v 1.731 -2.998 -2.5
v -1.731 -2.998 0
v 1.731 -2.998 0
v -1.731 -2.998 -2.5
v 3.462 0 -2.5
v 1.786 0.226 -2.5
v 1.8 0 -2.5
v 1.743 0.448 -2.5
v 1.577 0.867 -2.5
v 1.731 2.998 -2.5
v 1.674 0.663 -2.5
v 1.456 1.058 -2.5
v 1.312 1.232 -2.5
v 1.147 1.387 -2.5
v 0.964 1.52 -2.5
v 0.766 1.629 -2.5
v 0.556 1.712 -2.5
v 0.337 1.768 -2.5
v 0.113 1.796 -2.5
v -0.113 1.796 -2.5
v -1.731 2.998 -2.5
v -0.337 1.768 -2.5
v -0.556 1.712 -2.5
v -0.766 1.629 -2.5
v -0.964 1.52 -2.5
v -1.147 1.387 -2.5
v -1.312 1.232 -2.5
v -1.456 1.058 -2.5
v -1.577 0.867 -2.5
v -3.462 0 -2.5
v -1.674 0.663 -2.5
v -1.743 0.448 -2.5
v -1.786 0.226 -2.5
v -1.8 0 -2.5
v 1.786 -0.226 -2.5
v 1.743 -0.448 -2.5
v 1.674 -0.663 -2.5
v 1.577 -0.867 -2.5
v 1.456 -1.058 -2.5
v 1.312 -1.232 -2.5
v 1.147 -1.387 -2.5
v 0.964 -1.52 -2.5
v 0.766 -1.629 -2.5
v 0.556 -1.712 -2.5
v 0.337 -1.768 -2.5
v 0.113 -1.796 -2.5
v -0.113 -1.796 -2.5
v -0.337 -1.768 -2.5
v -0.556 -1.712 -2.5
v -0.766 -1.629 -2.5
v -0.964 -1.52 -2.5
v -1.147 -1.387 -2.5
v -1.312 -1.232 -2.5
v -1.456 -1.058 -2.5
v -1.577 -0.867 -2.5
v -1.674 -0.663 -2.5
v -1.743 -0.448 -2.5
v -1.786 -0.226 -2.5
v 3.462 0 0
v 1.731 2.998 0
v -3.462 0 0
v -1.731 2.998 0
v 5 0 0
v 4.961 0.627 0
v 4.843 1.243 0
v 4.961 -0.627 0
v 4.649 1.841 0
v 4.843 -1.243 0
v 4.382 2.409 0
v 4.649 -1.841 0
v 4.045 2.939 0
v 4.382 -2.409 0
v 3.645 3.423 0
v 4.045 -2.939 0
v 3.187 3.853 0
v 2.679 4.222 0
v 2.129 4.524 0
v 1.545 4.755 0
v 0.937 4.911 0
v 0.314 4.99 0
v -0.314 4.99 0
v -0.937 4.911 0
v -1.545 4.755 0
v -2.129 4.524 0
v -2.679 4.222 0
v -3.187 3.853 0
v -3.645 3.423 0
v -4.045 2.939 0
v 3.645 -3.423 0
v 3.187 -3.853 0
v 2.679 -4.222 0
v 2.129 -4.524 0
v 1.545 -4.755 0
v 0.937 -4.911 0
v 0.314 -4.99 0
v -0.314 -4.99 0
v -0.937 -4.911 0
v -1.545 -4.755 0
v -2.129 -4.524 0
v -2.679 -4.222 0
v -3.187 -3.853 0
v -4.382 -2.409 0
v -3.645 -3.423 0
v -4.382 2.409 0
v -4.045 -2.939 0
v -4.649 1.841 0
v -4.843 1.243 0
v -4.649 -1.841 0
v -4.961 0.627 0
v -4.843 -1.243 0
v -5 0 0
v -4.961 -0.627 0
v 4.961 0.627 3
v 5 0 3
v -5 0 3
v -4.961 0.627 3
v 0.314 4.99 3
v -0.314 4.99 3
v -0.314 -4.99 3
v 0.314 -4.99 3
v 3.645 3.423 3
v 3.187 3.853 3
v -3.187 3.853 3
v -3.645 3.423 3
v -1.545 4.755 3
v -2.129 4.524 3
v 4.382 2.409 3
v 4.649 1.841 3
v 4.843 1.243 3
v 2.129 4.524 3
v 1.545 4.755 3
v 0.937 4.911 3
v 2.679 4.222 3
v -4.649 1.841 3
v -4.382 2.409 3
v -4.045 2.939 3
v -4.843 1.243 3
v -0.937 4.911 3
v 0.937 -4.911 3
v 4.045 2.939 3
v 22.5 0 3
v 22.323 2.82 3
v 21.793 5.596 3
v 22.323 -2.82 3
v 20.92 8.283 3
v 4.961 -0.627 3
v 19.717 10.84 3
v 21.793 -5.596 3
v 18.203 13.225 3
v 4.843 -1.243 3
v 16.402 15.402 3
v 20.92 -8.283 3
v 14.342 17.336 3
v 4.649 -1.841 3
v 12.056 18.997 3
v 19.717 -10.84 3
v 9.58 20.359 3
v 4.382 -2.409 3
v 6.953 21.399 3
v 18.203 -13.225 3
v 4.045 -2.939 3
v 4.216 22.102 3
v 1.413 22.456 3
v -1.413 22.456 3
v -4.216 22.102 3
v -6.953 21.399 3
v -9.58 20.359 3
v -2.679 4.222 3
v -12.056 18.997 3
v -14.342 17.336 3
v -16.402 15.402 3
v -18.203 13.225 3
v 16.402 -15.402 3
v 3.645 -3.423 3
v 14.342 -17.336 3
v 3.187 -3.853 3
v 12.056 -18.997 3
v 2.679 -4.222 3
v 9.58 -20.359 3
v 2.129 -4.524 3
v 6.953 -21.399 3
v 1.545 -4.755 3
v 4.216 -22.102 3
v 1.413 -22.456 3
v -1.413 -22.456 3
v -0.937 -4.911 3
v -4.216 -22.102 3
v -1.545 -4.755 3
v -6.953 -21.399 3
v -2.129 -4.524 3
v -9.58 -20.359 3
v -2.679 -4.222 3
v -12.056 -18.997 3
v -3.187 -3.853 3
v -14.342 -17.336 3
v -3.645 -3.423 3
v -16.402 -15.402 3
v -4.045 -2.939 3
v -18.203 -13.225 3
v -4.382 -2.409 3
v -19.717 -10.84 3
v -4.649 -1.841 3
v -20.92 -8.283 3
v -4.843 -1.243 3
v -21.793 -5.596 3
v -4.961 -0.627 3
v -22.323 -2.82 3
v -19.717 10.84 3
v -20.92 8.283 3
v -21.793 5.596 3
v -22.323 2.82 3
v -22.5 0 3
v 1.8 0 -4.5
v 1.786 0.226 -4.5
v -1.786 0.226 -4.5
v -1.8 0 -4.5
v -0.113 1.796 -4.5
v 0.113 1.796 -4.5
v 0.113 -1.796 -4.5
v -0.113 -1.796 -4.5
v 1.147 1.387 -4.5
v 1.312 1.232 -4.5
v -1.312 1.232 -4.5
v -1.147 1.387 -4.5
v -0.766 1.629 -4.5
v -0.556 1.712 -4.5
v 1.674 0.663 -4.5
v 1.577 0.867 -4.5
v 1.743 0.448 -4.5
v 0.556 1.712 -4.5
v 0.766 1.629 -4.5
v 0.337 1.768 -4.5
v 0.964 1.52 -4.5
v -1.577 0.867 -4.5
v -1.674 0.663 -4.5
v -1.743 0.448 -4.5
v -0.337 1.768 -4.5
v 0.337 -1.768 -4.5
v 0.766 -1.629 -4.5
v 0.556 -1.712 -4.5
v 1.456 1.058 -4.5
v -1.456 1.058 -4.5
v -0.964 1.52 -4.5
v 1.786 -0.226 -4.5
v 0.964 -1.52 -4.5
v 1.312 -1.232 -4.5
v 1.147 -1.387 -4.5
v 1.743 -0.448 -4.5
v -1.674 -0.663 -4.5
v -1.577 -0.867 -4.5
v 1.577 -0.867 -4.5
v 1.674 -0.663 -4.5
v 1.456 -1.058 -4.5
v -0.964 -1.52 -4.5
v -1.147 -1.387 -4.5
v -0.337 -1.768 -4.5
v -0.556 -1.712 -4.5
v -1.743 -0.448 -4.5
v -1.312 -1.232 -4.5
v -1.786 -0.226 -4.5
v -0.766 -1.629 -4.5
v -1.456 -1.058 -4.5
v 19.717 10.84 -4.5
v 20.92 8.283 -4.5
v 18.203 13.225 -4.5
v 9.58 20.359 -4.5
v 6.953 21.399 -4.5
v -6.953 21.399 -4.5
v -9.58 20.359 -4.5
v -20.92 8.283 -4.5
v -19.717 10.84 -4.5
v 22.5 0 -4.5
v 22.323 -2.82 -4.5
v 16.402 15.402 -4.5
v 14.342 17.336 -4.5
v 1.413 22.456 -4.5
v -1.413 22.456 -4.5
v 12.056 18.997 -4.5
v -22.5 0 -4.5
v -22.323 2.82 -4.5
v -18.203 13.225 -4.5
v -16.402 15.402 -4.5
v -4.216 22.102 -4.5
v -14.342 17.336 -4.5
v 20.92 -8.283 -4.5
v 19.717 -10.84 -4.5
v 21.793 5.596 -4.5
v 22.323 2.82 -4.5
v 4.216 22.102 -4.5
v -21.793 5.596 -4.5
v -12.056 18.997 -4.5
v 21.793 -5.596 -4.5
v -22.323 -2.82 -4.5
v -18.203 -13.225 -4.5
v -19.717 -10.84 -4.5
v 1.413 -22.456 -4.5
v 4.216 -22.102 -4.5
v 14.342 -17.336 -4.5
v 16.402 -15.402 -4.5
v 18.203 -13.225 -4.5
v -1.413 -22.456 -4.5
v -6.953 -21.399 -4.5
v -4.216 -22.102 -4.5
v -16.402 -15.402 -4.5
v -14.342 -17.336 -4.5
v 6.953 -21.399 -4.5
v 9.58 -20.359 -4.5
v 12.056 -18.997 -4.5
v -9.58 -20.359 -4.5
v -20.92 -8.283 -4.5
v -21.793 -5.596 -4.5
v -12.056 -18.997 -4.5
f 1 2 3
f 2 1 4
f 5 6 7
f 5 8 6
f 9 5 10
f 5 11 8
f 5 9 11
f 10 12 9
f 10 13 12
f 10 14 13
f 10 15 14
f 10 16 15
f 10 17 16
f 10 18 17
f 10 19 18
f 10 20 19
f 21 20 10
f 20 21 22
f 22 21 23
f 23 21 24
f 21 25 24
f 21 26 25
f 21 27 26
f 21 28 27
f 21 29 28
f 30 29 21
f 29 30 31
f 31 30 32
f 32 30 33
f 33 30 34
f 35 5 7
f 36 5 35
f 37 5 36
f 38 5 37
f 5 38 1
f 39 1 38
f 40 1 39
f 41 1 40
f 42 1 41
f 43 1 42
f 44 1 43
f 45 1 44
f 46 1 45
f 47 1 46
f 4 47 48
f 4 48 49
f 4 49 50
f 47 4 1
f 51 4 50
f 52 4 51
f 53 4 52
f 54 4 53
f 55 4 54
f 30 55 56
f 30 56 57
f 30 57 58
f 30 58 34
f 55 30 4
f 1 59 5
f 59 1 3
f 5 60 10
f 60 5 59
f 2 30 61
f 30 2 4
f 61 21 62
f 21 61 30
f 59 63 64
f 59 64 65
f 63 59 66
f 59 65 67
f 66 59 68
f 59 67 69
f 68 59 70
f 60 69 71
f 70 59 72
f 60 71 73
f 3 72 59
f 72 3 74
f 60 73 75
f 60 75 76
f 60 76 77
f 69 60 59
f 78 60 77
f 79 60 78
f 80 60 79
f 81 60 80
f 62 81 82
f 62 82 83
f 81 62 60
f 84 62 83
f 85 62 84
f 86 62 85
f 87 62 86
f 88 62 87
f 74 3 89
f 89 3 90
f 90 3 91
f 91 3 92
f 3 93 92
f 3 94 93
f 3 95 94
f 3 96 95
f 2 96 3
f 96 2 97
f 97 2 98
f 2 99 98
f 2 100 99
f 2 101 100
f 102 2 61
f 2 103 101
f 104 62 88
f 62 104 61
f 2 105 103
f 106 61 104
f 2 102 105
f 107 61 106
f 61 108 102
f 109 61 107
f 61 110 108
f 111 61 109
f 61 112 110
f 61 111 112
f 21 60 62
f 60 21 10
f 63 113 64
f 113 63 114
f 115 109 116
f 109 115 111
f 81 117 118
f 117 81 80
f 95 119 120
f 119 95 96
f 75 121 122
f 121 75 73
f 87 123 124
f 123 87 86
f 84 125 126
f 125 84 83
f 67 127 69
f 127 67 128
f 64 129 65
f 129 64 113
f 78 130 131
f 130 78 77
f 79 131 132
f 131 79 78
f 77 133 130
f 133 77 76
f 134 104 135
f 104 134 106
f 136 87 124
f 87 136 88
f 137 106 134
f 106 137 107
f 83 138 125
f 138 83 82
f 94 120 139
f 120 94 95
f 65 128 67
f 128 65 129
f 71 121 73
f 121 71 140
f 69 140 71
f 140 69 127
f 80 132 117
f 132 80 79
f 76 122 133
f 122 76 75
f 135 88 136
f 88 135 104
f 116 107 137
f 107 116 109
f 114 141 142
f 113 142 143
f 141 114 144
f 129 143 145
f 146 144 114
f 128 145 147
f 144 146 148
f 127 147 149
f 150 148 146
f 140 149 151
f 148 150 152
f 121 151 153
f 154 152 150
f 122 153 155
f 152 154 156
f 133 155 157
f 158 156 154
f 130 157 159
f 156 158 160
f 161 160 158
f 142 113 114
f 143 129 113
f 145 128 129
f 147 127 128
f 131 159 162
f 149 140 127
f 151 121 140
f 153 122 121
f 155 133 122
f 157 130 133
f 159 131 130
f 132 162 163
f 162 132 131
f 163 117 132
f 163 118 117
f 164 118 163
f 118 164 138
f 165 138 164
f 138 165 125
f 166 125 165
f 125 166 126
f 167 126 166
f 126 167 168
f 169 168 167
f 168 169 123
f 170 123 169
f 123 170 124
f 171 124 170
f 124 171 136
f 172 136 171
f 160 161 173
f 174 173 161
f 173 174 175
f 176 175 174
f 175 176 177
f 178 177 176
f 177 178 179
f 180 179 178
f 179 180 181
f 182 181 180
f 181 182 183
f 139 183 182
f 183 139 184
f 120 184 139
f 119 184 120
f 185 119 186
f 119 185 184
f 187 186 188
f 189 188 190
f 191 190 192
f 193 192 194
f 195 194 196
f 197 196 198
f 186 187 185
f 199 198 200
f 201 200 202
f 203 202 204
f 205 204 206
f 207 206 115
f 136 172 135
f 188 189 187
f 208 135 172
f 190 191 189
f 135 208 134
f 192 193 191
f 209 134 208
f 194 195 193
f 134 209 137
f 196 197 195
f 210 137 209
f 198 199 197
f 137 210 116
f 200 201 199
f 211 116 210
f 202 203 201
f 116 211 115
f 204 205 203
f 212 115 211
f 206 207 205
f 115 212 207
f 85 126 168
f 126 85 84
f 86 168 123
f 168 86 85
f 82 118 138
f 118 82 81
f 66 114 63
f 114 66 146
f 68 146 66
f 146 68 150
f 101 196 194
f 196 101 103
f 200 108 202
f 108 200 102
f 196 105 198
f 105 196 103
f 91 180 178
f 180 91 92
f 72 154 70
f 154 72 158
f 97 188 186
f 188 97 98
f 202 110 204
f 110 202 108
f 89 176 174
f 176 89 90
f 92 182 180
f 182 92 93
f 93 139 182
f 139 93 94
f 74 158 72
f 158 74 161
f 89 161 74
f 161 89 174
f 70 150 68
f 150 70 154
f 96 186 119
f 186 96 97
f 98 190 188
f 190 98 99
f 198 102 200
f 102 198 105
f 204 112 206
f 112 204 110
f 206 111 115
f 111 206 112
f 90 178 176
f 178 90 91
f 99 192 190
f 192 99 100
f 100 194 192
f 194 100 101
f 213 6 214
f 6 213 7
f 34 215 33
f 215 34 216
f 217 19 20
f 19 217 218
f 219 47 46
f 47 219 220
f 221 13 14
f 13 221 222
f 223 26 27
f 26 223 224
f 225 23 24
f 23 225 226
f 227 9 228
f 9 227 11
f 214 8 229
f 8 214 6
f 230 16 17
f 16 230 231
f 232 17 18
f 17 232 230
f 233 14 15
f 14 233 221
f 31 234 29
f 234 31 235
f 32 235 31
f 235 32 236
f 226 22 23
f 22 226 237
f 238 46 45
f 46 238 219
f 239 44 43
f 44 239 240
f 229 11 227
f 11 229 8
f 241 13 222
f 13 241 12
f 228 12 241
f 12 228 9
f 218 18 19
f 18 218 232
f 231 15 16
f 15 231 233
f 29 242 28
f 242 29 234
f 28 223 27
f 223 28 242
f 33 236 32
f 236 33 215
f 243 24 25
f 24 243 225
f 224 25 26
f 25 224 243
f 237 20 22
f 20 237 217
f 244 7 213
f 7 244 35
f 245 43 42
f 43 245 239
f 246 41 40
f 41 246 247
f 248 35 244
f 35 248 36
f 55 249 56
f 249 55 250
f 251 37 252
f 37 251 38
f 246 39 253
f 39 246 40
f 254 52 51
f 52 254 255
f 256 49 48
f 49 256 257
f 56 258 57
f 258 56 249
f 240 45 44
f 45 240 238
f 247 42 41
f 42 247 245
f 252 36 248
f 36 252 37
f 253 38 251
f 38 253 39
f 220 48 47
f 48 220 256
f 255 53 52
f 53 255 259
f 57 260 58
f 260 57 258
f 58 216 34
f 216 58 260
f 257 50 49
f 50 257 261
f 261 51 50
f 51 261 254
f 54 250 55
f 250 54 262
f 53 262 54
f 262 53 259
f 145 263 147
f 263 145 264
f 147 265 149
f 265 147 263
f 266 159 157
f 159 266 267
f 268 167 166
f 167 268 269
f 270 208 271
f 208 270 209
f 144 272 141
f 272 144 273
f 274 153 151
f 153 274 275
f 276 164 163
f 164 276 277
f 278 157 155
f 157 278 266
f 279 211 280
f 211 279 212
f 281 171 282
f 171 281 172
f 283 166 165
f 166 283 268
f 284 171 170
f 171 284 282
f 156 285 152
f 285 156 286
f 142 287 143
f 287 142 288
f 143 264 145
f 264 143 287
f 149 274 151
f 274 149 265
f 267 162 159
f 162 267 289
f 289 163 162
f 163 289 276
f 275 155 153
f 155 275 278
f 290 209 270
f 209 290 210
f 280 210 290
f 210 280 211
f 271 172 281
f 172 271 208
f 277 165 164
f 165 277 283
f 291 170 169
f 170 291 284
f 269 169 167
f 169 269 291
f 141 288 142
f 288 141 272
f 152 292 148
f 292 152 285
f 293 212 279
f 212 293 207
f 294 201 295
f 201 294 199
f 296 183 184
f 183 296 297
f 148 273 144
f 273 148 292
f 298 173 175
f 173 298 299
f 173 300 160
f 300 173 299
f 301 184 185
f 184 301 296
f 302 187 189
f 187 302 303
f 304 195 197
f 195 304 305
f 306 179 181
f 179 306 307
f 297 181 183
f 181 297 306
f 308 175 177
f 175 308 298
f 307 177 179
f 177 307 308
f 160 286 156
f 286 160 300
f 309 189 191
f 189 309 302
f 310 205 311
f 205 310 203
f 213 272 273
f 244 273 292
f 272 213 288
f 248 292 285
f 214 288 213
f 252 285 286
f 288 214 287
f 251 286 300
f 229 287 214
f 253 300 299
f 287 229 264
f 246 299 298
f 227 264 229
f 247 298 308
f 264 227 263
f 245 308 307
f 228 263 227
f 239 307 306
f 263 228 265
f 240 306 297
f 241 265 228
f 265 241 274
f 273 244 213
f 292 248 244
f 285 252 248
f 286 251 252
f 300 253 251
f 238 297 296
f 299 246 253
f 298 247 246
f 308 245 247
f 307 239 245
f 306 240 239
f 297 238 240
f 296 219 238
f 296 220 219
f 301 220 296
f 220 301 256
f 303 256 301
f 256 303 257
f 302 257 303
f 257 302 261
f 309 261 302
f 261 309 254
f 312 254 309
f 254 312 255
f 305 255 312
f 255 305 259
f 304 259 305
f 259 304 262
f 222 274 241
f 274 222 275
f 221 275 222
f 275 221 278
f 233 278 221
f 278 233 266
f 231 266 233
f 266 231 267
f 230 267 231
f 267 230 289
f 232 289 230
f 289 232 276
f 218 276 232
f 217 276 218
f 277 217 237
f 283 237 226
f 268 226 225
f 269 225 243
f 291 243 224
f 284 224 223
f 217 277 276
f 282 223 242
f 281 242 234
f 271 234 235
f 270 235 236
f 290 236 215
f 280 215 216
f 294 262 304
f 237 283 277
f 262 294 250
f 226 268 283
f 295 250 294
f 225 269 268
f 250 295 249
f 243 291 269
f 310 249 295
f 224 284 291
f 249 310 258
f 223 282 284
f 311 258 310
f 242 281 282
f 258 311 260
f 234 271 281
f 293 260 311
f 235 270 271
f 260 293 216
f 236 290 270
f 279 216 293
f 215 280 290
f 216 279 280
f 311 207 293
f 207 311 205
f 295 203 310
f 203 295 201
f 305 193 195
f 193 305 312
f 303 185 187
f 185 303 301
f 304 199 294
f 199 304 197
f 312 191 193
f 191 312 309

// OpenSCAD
$fn = 50;


difference() {
	union() {
		translate(v = [0, 0, -4.5000000000]) {
			cylinder(h = 7.5000000000, r = 22.5000000000);
		}
	}
	union() {
		translate(v = [0, 0, 0]) {
			rotate(a = [0, 0, 0]) {
				difference() {
					union() {
						translate(v = [0, 0, -2.5000000000]) {
							linear_extrude(height = 2.5000000000) {
								polygon(points = [[3.4620000000, 0.0000000000], [1.7310000000, 2.9981799479], [-1.7310000000, 2.9981799479], [-3.4620000000, 0.0000000000], [-1.7310000000, -2.9981799479], [1.7310000000, -2.9981799479]]);
							}
						}
					}
					union();
				}
			}
		}
		#cylinder(h = 3, r = 5.0000000000);
		#translate(v = [0, 0, -100.0000000000]) {
			cylinder(h = 200, r = 1.8000000000);
		}
	}
}
